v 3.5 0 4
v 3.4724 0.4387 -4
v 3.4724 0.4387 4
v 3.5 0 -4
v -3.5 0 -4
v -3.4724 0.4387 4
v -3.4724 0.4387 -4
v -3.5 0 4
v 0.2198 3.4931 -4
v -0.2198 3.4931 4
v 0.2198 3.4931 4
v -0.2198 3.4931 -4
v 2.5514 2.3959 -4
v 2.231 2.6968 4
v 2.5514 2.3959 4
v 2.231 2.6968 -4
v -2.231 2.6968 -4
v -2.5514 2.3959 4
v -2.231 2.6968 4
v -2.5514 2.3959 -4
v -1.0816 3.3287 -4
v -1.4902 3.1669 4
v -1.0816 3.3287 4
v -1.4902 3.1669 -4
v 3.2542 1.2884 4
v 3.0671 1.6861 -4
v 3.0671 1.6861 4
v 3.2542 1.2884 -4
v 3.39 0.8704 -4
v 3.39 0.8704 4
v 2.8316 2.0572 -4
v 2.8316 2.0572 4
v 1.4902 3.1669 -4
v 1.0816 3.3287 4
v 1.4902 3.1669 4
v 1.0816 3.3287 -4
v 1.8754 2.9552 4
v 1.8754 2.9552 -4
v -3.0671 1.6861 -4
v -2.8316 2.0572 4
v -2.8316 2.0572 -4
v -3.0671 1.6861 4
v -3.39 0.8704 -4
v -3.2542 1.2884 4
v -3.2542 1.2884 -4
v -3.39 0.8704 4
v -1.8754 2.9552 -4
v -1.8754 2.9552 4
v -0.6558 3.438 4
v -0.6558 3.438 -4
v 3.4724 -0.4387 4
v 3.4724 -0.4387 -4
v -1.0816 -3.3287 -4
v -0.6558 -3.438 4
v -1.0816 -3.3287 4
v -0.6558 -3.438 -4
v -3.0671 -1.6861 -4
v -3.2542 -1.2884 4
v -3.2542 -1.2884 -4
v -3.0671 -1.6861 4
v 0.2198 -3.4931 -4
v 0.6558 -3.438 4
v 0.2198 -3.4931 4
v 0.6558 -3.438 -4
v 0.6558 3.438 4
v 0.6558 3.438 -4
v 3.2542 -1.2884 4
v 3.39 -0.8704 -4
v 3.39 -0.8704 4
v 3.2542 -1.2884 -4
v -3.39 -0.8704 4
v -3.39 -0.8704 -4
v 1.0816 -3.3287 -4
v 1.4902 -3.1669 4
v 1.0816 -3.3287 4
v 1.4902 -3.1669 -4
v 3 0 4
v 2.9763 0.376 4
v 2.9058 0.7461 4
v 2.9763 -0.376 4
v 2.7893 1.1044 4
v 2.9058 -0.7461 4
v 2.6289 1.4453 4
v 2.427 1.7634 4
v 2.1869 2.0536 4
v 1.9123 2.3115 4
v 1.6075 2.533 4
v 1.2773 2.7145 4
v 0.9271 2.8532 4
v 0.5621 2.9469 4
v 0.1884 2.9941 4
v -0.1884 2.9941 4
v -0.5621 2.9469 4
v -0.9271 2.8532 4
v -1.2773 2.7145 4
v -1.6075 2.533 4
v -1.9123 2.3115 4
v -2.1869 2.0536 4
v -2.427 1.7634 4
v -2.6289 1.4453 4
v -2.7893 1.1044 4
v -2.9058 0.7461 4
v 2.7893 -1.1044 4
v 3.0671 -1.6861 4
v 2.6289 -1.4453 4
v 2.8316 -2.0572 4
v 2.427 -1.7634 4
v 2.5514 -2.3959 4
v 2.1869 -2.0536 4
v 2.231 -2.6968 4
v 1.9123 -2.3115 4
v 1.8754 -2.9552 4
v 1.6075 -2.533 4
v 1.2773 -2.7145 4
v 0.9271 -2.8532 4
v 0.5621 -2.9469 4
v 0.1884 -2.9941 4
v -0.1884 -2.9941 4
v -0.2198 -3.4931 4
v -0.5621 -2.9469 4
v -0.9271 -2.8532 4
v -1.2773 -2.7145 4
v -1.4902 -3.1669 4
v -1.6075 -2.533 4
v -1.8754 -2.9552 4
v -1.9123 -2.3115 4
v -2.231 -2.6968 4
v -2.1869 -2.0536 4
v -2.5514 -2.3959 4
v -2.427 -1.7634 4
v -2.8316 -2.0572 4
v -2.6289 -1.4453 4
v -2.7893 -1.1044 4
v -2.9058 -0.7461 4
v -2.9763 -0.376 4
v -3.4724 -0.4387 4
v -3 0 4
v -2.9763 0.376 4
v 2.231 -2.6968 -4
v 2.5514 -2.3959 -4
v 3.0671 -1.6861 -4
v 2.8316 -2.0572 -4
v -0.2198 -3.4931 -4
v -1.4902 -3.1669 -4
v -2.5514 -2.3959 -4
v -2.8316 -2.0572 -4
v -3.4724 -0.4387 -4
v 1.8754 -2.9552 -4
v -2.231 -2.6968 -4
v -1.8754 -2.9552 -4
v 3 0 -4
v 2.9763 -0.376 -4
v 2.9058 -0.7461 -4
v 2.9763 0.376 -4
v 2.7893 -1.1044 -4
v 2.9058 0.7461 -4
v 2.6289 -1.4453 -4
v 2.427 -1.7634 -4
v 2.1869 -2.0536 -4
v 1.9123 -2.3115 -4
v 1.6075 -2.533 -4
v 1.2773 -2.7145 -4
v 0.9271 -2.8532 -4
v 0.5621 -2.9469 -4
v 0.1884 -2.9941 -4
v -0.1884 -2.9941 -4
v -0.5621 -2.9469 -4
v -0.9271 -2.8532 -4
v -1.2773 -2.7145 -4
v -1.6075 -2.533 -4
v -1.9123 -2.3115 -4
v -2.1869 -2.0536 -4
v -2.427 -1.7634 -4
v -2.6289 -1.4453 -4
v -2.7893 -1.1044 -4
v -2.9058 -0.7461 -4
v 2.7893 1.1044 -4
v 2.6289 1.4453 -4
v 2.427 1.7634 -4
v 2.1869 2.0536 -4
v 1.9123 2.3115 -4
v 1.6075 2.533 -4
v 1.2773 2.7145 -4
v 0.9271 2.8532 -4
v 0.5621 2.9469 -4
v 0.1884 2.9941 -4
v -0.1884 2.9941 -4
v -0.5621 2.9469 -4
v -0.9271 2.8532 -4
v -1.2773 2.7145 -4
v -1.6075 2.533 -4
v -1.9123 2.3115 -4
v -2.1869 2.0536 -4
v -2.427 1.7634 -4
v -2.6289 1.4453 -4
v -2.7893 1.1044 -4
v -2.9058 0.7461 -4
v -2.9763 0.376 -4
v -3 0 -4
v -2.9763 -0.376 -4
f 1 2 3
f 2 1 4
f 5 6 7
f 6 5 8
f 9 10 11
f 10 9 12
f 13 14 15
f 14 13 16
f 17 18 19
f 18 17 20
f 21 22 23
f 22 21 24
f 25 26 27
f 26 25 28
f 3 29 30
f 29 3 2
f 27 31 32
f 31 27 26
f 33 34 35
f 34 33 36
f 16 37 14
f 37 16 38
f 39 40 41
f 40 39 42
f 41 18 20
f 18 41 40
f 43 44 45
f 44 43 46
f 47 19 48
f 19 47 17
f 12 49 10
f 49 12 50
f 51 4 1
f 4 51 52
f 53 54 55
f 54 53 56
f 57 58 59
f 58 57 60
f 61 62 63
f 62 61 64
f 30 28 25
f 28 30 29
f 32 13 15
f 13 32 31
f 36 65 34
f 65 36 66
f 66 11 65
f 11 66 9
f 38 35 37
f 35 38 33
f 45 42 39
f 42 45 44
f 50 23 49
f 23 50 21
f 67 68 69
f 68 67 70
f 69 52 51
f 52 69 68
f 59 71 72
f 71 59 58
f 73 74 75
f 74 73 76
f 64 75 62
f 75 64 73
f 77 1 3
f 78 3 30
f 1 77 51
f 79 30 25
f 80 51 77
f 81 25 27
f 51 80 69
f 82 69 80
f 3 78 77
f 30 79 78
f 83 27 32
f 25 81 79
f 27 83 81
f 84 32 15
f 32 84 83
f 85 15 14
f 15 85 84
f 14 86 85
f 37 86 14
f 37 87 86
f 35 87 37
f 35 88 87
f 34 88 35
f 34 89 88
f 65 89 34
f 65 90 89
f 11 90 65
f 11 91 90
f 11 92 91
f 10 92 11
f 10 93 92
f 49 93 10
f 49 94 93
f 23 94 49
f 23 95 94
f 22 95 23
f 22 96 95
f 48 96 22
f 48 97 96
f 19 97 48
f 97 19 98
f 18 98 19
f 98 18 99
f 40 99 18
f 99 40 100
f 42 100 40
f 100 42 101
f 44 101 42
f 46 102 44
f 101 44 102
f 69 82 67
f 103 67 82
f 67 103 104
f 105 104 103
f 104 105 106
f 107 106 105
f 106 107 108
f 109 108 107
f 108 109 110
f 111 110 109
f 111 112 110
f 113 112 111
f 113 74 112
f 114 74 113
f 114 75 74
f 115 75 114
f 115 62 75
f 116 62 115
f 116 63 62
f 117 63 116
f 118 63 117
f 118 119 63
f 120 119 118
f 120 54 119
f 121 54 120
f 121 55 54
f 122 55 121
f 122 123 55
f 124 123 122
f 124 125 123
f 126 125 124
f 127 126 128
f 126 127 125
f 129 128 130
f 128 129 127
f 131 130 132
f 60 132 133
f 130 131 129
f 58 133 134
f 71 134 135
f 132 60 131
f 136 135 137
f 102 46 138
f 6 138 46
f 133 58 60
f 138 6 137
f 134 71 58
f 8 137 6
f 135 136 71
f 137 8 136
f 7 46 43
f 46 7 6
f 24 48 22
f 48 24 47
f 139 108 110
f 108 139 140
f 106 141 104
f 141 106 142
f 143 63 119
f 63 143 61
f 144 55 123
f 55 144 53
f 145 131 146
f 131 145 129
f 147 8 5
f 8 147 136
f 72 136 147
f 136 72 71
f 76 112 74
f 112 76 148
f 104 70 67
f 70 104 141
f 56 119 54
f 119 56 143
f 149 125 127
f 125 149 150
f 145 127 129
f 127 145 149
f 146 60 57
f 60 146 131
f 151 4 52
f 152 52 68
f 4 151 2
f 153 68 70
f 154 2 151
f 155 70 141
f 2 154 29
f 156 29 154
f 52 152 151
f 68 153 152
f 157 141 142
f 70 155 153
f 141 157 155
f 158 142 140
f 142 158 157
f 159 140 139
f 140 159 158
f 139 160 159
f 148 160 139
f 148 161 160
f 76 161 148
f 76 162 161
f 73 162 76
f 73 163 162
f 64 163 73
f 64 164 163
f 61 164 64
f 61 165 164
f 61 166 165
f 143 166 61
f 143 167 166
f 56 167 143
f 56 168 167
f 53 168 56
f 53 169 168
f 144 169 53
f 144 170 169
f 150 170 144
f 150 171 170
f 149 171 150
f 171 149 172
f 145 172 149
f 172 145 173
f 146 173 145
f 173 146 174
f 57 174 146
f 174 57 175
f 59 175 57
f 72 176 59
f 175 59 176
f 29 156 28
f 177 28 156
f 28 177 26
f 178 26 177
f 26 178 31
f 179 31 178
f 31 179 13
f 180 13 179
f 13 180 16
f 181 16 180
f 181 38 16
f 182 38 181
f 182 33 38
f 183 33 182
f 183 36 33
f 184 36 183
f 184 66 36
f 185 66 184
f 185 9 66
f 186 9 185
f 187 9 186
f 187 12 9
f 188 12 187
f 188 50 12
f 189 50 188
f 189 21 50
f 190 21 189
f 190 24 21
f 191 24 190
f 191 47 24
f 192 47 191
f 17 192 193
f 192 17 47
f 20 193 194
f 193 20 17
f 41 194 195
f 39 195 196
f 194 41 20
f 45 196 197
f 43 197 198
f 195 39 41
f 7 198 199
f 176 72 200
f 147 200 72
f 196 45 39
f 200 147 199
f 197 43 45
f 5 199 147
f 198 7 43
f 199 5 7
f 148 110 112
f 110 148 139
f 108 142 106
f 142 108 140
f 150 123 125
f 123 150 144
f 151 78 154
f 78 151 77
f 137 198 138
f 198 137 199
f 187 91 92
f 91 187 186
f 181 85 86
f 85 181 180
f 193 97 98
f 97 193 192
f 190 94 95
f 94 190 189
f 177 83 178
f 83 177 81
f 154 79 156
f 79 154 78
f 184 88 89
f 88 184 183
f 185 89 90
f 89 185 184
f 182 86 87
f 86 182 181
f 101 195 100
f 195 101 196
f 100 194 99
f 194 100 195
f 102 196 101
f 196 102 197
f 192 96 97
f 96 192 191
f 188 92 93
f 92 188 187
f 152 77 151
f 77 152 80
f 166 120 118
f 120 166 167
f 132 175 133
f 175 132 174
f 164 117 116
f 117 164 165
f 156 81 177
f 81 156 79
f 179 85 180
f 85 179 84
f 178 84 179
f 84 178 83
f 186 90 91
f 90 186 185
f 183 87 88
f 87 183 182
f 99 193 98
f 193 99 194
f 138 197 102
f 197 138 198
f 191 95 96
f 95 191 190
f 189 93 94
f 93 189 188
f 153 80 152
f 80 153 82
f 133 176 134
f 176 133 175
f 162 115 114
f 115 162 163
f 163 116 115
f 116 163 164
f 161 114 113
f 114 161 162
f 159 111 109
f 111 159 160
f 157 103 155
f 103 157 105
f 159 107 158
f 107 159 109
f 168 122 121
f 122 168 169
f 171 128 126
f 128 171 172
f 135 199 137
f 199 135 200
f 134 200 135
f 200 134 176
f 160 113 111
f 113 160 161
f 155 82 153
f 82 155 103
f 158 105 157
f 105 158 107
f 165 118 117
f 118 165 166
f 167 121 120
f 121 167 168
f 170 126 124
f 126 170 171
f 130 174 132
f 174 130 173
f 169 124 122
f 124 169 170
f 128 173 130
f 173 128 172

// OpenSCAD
$fn = 50;


difference() {
	union() {
		translate(v = [0, 0, -4.0000000000]) {
			cylinder(h = 8, r = 3.5000000000);
		}
	}
	union() {
		translate(v = [0, 0, -100.0000000000]) {
			cylinder(h = 200, r = 3.0000000000);
		}
	}
}
